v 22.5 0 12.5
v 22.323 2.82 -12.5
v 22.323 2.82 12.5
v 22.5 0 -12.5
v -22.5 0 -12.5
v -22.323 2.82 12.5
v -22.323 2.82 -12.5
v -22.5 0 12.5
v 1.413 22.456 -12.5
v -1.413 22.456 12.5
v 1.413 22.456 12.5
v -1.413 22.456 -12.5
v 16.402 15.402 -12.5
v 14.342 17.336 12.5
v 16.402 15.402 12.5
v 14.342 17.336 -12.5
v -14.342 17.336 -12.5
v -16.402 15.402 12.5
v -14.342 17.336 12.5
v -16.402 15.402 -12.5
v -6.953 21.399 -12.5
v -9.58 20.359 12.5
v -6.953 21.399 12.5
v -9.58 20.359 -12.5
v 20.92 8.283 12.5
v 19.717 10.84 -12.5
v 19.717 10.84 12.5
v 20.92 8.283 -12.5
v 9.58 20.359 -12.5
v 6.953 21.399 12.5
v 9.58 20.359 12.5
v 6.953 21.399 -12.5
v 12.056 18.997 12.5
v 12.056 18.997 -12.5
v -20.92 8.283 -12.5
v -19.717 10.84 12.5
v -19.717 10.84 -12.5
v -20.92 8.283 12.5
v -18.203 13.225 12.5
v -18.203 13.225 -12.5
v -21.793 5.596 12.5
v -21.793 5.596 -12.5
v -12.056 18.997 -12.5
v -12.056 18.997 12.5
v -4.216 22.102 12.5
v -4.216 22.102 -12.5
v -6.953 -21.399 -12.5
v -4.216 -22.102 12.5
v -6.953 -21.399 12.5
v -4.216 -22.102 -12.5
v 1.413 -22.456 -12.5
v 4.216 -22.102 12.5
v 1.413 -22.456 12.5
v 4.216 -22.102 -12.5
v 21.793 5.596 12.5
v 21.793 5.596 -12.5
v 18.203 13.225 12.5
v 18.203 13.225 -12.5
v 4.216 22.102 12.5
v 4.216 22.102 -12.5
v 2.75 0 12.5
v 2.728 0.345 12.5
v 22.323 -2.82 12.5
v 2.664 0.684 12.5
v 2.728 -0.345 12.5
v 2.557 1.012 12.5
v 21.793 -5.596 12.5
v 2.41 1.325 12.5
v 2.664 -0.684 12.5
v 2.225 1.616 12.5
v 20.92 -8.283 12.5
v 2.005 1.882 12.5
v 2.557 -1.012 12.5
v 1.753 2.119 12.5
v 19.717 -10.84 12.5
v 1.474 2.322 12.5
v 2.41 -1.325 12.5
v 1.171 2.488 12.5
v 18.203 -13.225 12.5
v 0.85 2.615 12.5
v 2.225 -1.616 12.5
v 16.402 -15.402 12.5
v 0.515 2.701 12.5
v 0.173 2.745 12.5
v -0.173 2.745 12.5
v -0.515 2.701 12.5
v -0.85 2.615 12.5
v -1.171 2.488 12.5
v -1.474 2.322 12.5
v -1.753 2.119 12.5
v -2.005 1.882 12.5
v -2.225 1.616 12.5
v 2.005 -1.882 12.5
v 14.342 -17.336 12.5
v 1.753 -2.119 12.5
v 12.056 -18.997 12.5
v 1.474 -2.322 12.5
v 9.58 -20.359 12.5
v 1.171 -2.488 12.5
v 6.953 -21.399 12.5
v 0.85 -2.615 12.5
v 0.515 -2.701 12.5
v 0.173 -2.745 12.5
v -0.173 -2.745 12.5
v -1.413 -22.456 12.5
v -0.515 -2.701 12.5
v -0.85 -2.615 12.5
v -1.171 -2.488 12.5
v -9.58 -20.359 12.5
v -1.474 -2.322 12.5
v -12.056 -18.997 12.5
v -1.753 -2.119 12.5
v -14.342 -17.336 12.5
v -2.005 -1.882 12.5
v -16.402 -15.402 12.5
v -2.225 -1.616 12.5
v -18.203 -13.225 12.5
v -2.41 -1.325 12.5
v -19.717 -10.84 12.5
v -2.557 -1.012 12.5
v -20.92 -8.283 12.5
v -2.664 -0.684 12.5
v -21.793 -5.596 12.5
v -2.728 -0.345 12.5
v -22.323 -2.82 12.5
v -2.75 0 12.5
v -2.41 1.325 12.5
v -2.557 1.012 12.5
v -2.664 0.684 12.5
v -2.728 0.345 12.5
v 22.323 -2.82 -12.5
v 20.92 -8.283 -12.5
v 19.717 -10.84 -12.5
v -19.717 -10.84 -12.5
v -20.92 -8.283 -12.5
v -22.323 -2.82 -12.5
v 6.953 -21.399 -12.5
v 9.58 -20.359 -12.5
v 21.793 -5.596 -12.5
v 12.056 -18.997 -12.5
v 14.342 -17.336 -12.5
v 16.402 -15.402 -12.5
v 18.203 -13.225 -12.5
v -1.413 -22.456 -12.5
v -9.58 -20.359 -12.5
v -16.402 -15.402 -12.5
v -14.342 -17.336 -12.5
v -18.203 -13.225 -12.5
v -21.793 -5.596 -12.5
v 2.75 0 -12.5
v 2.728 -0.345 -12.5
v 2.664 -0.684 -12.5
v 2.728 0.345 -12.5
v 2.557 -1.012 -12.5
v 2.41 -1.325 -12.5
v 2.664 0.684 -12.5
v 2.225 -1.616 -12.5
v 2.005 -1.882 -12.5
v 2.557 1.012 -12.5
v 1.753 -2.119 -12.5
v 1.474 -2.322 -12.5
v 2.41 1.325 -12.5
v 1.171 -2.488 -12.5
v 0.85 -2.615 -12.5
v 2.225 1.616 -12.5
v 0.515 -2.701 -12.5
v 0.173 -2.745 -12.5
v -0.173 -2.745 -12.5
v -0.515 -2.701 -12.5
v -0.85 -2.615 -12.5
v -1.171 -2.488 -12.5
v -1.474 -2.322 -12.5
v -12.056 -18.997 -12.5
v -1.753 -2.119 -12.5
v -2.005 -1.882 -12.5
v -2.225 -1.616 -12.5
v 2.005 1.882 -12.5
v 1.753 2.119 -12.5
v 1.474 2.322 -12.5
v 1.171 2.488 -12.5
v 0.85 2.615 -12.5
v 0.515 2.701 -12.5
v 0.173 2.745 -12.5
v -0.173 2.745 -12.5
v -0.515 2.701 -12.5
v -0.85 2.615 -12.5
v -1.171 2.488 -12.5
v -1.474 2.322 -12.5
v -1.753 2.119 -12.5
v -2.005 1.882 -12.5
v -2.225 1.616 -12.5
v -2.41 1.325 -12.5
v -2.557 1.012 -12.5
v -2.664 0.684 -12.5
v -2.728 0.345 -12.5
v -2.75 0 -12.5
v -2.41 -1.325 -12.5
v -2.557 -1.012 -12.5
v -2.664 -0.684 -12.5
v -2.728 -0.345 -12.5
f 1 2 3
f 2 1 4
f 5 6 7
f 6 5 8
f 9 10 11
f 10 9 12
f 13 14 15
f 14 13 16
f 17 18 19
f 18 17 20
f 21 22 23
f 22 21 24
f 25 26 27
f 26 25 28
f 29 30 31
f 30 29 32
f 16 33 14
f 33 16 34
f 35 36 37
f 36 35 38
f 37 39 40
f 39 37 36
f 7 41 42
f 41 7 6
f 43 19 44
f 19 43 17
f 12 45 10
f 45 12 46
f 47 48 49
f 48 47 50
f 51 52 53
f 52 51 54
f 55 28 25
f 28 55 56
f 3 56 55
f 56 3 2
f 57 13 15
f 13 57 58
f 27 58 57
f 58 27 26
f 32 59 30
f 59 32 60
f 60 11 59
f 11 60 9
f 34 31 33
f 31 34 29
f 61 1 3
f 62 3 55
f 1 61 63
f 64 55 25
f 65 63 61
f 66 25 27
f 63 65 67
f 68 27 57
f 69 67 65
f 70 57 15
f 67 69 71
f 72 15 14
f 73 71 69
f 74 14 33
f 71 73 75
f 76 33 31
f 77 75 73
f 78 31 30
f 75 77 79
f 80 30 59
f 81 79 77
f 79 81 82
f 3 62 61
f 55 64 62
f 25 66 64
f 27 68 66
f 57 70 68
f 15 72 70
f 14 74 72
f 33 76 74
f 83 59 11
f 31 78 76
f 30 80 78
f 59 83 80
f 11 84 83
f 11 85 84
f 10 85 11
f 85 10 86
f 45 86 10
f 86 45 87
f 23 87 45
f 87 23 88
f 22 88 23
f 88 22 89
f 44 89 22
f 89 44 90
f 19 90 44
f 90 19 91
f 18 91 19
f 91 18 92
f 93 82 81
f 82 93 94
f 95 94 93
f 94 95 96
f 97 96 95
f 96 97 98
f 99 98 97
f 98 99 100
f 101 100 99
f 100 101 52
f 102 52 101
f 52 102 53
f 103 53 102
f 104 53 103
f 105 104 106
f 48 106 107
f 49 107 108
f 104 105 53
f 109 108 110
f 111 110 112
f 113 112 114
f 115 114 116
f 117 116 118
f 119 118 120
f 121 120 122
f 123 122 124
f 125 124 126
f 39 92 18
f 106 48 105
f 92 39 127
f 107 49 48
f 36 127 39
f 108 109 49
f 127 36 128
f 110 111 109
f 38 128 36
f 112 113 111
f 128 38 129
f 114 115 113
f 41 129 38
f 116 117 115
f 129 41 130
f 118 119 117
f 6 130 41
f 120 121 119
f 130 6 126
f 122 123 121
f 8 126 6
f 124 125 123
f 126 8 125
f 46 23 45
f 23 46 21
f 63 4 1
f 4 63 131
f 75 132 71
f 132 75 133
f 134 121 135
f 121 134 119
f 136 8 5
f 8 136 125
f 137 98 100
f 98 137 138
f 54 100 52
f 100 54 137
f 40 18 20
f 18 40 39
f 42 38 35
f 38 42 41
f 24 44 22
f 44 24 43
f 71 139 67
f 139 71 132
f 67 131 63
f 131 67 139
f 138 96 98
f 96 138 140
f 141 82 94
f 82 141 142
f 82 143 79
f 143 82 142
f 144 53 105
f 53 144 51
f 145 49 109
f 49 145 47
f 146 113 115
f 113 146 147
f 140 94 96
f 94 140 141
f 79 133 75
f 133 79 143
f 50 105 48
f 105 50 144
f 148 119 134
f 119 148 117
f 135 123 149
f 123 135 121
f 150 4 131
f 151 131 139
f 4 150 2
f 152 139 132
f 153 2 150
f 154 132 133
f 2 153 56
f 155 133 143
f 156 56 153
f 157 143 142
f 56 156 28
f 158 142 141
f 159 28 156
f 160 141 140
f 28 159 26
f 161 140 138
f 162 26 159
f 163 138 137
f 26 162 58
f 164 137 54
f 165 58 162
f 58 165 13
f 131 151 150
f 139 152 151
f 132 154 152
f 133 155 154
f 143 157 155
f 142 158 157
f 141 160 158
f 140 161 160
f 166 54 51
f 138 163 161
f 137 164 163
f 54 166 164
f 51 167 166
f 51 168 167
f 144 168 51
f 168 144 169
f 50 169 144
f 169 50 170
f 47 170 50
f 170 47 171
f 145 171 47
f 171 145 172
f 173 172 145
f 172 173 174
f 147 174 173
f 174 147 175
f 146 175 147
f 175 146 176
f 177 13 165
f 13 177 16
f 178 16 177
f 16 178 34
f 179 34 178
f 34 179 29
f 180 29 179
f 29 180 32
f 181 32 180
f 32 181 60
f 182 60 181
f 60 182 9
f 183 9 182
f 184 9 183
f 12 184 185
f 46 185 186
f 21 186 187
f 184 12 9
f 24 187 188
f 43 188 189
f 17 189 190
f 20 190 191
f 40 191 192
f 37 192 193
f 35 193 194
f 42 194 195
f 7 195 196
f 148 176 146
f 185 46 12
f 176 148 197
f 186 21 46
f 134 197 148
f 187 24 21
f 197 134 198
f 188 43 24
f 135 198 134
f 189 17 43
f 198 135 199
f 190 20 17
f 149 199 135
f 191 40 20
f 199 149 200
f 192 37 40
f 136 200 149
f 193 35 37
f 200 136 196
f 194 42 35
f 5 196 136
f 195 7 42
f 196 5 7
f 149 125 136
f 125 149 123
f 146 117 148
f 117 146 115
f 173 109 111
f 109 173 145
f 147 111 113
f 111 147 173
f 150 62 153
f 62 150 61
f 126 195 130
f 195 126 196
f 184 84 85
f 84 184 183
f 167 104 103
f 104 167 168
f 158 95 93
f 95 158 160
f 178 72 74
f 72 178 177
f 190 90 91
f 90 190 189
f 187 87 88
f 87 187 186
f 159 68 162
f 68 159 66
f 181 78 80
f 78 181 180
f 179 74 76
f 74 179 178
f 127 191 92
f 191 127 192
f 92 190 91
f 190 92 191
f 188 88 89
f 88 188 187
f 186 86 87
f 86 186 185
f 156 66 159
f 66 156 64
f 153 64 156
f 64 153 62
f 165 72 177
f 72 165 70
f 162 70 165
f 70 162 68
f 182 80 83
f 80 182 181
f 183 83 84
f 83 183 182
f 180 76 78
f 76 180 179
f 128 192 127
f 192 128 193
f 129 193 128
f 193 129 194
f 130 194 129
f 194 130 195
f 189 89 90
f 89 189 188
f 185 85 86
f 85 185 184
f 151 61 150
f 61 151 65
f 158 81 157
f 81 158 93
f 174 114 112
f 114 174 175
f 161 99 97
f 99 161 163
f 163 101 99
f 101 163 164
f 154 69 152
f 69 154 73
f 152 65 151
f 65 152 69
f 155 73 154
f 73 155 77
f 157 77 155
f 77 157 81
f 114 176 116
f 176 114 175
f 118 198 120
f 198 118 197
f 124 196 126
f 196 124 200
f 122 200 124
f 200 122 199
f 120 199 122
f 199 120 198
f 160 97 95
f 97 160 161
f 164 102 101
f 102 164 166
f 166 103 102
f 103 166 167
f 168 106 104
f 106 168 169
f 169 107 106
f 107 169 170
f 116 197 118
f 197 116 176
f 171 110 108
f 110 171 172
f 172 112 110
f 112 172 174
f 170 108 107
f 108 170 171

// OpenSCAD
$fn = 50;


difference() {
	union() {
		translate(v = [0, 0, -12.5000000000]) {
			cylinder(h = 25, r = 22.5000000000);
		}
	}
	union() {
		translate(v = [0, 0, -100.0000000000]) {
			cylinder(h = 200, r = 2.7500000000);
		}
	}
}
